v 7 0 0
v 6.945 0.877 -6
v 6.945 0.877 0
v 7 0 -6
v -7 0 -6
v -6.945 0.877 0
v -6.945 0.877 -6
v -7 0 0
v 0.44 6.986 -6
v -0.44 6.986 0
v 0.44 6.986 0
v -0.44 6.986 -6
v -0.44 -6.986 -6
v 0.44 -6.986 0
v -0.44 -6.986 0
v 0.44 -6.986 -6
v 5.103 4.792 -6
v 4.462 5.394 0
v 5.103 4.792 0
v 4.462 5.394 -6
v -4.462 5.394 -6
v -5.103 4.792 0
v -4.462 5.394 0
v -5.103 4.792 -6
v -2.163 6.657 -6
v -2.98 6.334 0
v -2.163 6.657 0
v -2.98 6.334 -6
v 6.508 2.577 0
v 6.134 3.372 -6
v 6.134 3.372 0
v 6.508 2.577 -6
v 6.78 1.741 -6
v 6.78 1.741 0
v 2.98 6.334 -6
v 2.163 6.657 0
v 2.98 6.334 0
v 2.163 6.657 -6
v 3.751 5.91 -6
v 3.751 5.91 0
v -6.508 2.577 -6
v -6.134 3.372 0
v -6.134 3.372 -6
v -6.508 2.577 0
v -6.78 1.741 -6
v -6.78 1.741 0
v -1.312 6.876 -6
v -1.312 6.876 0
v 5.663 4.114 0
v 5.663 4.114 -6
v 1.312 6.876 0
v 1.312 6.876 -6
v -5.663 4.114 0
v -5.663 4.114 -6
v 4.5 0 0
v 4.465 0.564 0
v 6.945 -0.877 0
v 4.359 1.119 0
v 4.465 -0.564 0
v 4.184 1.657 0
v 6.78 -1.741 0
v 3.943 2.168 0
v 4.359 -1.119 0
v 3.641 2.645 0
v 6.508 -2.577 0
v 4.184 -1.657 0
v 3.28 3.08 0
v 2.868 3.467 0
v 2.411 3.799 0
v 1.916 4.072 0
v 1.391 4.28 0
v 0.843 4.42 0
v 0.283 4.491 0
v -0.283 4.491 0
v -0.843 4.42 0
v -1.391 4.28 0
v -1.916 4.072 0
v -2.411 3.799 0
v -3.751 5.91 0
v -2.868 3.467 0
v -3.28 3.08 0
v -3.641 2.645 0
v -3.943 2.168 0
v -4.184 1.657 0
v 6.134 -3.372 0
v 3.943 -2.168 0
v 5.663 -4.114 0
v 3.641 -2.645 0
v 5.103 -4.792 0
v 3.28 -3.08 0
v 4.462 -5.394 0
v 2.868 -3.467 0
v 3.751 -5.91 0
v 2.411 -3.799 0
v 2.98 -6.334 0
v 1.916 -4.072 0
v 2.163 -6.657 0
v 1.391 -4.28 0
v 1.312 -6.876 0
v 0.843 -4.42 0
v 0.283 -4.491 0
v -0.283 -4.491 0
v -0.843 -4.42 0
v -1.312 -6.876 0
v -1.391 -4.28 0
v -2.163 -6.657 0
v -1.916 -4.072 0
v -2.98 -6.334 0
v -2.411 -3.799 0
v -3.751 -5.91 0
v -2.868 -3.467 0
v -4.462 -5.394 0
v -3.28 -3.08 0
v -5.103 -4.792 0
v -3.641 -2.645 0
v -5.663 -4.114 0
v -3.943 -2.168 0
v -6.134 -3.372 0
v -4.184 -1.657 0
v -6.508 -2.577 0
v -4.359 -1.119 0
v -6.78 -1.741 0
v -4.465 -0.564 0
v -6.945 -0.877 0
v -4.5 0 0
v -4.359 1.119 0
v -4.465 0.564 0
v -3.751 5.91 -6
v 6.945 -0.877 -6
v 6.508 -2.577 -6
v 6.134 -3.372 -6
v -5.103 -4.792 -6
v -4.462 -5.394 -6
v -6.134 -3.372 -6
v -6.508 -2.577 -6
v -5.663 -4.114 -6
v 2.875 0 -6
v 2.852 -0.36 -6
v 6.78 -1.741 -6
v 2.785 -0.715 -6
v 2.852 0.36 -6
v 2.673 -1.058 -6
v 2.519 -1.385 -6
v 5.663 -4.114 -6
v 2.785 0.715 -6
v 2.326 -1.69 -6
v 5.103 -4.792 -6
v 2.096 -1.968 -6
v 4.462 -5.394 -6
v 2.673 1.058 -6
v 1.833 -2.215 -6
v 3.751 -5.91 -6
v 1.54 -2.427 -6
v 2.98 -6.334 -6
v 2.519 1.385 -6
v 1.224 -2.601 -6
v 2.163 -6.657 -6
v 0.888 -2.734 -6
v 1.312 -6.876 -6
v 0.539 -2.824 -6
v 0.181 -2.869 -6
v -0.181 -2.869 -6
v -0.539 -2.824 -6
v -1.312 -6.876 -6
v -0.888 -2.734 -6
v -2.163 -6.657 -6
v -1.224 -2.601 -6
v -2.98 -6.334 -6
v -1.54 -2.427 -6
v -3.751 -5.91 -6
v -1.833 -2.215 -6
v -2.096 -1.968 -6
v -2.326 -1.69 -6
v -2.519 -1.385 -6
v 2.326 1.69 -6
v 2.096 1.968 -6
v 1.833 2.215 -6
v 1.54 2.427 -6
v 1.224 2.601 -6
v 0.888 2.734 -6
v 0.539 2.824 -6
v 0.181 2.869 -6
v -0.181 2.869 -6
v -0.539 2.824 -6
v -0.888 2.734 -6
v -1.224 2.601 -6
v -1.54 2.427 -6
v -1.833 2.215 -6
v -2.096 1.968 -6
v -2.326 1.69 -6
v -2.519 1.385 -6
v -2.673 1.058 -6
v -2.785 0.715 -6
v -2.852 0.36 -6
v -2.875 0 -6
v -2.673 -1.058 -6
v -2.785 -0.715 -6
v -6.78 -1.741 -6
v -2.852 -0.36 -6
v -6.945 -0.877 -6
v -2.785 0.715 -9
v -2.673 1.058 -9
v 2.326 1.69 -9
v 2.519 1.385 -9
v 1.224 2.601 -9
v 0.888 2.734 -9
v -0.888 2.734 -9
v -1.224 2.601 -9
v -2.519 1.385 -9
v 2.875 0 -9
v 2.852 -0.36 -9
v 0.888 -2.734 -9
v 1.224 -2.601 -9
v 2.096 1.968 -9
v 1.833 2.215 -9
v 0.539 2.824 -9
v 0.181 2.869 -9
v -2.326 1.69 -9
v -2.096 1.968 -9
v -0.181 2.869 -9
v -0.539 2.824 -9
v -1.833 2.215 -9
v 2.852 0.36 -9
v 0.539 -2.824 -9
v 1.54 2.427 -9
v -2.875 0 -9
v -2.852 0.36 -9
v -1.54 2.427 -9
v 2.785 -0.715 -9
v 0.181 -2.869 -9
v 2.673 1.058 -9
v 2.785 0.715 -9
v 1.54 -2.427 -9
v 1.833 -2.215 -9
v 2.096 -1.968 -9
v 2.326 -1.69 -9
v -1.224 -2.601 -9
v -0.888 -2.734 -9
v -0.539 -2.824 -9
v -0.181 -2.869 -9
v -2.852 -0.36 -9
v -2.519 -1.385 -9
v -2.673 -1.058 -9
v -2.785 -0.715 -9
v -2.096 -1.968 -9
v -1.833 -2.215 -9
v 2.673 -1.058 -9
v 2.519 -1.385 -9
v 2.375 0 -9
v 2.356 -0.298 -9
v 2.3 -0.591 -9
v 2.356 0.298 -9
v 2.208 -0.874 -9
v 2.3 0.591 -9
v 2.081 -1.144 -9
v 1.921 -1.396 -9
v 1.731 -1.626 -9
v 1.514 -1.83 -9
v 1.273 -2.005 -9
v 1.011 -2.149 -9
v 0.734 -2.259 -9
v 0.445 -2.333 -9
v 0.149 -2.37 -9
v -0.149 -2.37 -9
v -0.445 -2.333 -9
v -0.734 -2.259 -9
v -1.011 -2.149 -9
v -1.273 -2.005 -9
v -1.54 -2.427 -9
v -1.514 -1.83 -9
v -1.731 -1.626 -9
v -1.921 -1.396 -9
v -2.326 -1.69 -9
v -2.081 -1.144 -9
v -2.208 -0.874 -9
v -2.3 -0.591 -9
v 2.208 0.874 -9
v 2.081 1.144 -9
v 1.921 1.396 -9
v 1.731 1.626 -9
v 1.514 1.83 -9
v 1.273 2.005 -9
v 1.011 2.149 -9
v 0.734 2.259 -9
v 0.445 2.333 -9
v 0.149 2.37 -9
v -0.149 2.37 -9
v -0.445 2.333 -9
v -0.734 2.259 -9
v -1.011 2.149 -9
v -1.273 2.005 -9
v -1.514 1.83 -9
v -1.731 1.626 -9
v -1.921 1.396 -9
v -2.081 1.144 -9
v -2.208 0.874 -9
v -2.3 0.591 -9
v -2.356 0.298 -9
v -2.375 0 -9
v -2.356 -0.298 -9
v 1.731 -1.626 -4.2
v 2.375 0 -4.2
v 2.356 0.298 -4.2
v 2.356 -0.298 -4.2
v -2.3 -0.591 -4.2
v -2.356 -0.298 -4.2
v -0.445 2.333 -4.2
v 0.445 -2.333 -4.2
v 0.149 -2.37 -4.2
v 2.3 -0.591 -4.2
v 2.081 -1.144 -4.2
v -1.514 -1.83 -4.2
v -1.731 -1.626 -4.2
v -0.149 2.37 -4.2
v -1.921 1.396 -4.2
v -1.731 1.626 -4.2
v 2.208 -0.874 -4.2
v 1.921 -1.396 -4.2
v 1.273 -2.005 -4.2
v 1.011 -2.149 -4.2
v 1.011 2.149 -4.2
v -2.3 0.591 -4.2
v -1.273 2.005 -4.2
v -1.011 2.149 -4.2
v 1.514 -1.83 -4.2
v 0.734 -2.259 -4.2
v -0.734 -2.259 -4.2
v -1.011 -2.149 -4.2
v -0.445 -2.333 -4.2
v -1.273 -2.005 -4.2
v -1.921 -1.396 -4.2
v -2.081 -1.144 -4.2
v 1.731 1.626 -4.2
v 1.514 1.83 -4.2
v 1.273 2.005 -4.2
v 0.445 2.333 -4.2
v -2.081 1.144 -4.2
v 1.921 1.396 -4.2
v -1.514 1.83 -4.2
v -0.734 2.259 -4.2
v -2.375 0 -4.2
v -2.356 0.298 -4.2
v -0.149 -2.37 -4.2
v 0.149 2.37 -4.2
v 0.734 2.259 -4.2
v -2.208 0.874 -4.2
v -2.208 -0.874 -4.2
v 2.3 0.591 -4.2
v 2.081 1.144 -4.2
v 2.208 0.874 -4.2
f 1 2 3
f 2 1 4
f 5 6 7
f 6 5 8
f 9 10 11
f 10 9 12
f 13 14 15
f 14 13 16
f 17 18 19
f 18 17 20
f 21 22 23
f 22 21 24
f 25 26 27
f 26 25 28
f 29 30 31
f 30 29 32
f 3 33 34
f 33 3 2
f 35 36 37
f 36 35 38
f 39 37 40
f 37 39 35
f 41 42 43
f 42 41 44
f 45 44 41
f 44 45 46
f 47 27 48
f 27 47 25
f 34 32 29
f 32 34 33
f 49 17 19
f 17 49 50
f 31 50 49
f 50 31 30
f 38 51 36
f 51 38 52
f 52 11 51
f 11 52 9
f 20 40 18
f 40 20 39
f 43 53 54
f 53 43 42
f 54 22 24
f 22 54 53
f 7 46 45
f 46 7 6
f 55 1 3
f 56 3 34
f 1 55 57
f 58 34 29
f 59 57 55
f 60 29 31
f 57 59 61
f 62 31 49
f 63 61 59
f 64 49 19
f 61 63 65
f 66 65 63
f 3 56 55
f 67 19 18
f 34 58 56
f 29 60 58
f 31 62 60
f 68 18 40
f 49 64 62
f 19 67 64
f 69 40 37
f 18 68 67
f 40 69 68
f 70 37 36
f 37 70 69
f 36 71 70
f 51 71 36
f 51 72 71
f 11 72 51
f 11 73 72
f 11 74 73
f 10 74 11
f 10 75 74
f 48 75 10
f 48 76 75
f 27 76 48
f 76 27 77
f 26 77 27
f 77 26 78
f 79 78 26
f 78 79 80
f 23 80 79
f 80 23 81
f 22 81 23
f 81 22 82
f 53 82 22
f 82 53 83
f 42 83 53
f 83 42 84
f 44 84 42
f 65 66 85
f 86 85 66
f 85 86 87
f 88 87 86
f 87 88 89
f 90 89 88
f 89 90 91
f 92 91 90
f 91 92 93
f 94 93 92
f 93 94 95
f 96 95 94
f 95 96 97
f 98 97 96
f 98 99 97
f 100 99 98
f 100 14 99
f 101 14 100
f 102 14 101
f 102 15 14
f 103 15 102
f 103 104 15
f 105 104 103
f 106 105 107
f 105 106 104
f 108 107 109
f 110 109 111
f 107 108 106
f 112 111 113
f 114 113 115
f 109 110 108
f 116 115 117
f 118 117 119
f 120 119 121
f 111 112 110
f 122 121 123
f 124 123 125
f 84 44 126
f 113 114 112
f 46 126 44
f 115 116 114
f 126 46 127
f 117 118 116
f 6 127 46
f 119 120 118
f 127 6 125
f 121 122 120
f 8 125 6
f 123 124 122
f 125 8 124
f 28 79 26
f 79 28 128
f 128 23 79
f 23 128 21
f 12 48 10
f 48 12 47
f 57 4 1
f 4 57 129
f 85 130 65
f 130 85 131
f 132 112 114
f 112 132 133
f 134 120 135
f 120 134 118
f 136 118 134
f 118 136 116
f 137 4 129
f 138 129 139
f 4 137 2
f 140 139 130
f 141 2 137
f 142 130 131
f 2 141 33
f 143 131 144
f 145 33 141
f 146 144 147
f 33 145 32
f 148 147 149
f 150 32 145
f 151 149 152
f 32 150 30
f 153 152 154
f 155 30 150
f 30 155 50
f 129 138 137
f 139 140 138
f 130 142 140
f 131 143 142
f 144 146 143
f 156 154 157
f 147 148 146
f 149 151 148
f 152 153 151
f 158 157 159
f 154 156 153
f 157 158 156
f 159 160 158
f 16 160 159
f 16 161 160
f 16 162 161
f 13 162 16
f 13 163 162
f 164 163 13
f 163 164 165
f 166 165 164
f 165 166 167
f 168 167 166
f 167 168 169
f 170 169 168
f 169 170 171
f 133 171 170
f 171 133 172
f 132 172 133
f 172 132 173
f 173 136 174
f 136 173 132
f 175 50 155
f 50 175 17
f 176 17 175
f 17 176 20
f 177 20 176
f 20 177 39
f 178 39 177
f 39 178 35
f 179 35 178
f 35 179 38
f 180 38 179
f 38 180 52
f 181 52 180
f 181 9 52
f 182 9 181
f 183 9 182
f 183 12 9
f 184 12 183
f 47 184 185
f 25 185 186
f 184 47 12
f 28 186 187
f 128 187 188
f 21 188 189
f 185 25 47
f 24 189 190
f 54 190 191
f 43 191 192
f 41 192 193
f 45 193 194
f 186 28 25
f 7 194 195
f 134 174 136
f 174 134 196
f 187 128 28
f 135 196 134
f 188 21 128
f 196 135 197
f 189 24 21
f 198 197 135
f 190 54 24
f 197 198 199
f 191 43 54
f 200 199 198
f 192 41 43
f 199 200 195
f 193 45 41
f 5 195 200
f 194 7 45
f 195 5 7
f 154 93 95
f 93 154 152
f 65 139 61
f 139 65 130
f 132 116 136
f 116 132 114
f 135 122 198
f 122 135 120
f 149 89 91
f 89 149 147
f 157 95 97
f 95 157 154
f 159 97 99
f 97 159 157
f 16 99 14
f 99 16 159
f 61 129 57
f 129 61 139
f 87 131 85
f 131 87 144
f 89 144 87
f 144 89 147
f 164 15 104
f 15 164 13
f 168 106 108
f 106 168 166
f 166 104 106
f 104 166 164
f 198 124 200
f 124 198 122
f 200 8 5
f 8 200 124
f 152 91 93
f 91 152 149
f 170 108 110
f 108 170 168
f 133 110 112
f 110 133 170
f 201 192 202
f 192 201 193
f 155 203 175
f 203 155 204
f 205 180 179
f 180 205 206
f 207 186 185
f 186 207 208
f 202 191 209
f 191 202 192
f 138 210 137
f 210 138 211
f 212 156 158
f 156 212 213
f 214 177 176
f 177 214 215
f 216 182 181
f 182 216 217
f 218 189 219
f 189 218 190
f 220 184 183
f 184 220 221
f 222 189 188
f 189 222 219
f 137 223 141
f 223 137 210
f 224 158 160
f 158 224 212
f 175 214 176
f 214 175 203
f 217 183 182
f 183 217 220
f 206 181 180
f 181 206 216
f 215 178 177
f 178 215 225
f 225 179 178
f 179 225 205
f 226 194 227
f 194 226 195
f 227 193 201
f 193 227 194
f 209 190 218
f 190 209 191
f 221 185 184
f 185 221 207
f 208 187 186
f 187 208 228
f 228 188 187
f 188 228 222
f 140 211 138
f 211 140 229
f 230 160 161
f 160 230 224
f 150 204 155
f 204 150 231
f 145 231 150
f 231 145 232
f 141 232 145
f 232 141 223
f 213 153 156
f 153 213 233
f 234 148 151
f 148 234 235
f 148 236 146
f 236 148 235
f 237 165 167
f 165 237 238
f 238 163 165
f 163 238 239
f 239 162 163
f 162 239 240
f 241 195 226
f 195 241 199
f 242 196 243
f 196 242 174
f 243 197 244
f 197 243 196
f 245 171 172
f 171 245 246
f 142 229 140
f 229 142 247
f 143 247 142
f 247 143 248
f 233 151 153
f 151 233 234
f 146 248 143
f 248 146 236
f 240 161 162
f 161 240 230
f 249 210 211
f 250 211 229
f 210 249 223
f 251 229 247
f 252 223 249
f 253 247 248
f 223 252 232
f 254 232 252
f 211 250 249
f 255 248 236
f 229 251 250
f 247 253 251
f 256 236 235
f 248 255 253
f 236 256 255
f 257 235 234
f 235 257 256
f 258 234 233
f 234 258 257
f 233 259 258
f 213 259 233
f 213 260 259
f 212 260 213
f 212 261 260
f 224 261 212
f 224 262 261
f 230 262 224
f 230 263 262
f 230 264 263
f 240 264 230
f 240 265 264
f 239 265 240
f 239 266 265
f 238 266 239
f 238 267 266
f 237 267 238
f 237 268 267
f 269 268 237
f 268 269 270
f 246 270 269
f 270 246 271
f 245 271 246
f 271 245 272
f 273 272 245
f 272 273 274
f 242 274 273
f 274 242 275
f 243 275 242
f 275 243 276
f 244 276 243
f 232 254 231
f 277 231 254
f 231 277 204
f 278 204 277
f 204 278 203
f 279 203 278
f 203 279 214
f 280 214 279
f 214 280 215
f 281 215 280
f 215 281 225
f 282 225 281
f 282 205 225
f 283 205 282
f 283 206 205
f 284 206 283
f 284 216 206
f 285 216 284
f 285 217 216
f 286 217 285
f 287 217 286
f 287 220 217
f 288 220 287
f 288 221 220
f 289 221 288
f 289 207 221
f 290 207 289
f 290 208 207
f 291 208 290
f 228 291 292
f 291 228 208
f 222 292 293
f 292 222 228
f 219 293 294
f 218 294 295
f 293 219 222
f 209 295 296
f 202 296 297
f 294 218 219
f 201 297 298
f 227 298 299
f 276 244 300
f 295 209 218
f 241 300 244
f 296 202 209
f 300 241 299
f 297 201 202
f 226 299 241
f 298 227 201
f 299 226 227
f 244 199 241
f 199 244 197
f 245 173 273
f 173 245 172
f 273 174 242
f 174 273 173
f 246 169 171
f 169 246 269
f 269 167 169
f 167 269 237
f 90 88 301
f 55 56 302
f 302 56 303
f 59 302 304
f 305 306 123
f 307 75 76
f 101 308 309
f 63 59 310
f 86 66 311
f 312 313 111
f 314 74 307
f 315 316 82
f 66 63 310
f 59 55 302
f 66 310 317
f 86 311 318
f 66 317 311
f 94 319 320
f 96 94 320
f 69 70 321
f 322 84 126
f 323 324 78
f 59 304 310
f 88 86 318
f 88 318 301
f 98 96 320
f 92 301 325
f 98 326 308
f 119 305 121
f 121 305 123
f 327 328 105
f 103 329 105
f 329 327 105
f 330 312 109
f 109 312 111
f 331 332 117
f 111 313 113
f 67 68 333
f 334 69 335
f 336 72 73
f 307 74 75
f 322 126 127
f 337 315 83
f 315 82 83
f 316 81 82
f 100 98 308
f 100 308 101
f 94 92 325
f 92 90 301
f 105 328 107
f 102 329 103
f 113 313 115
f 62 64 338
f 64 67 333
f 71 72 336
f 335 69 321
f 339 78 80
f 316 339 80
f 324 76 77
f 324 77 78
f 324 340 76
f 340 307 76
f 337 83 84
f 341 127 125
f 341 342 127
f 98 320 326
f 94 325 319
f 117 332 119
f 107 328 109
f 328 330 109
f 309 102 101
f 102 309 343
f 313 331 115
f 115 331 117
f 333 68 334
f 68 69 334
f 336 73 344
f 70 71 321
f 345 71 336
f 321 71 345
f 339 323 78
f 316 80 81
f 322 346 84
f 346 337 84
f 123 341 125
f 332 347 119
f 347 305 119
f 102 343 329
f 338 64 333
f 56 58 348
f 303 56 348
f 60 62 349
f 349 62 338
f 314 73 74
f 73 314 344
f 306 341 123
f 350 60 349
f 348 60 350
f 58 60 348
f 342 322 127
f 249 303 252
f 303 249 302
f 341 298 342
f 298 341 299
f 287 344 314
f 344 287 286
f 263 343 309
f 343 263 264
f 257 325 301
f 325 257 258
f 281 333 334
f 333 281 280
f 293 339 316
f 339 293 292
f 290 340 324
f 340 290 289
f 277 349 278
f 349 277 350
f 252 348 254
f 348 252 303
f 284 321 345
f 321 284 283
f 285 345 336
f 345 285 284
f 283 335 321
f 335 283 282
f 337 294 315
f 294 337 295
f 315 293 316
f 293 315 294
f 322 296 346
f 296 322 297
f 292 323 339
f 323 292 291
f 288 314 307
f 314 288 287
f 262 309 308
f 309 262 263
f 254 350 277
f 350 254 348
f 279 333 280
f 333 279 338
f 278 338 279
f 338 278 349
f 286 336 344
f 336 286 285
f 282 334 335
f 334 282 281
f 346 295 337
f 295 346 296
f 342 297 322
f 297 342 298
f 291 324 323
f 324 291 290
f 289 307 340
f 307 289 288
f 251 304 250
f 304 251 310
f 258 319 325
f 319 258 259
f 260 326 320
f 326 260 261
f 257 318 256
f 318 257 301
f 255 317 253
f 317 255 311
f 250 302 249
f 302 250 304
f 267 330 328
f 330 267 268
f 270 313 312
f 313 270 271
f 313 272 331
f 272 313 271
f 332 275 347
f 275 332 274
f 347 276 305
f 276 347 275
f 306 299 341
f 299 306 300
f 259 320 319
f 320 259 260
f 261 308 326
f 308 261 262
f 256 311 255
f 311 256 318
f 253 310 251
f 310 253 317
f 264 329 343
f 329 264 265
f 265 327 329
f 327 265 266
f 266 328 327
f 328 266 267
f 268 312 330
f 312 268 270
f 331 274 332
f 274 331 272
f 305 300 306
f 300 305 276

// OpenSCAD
$fn = 50;


difference() {
	union() {
		translate(v = [0, 0, -6.0000000000]) {
			cylinder(h = 6, r = 7.0000000000);
		}
		translate(v = [0, 0, -9.0000000000]) {
			cylinder(h = 9, r = 2.8750000000);
		}
	}
	union() {
		translate(v = [0, 0, 0]) {
			rotate(a = [0, 0, 0]) {
				difference() {
					union() {
						translate(v = [0, 0, -9.0000000000]) {
							cylinder(h = 9, r = 2.2500000000);
						}
						translate(v = [0, 0, -4.2000000000]) {
							cylinder(h = 4.2000000000, r1 = 2.3750000000, r2 = 4.5000000000);
						}
						translate(v = [0, 0, -9.0000000000]) {
							cylinder(h = 9, r = 2.3750000000);
						}
						translate(v = [0, 0, -9.0000000000]) {
							cylinder(h = 9, r = 2.2500000000);
						}
					}
					union();
				}
			}
		}
	}
}
